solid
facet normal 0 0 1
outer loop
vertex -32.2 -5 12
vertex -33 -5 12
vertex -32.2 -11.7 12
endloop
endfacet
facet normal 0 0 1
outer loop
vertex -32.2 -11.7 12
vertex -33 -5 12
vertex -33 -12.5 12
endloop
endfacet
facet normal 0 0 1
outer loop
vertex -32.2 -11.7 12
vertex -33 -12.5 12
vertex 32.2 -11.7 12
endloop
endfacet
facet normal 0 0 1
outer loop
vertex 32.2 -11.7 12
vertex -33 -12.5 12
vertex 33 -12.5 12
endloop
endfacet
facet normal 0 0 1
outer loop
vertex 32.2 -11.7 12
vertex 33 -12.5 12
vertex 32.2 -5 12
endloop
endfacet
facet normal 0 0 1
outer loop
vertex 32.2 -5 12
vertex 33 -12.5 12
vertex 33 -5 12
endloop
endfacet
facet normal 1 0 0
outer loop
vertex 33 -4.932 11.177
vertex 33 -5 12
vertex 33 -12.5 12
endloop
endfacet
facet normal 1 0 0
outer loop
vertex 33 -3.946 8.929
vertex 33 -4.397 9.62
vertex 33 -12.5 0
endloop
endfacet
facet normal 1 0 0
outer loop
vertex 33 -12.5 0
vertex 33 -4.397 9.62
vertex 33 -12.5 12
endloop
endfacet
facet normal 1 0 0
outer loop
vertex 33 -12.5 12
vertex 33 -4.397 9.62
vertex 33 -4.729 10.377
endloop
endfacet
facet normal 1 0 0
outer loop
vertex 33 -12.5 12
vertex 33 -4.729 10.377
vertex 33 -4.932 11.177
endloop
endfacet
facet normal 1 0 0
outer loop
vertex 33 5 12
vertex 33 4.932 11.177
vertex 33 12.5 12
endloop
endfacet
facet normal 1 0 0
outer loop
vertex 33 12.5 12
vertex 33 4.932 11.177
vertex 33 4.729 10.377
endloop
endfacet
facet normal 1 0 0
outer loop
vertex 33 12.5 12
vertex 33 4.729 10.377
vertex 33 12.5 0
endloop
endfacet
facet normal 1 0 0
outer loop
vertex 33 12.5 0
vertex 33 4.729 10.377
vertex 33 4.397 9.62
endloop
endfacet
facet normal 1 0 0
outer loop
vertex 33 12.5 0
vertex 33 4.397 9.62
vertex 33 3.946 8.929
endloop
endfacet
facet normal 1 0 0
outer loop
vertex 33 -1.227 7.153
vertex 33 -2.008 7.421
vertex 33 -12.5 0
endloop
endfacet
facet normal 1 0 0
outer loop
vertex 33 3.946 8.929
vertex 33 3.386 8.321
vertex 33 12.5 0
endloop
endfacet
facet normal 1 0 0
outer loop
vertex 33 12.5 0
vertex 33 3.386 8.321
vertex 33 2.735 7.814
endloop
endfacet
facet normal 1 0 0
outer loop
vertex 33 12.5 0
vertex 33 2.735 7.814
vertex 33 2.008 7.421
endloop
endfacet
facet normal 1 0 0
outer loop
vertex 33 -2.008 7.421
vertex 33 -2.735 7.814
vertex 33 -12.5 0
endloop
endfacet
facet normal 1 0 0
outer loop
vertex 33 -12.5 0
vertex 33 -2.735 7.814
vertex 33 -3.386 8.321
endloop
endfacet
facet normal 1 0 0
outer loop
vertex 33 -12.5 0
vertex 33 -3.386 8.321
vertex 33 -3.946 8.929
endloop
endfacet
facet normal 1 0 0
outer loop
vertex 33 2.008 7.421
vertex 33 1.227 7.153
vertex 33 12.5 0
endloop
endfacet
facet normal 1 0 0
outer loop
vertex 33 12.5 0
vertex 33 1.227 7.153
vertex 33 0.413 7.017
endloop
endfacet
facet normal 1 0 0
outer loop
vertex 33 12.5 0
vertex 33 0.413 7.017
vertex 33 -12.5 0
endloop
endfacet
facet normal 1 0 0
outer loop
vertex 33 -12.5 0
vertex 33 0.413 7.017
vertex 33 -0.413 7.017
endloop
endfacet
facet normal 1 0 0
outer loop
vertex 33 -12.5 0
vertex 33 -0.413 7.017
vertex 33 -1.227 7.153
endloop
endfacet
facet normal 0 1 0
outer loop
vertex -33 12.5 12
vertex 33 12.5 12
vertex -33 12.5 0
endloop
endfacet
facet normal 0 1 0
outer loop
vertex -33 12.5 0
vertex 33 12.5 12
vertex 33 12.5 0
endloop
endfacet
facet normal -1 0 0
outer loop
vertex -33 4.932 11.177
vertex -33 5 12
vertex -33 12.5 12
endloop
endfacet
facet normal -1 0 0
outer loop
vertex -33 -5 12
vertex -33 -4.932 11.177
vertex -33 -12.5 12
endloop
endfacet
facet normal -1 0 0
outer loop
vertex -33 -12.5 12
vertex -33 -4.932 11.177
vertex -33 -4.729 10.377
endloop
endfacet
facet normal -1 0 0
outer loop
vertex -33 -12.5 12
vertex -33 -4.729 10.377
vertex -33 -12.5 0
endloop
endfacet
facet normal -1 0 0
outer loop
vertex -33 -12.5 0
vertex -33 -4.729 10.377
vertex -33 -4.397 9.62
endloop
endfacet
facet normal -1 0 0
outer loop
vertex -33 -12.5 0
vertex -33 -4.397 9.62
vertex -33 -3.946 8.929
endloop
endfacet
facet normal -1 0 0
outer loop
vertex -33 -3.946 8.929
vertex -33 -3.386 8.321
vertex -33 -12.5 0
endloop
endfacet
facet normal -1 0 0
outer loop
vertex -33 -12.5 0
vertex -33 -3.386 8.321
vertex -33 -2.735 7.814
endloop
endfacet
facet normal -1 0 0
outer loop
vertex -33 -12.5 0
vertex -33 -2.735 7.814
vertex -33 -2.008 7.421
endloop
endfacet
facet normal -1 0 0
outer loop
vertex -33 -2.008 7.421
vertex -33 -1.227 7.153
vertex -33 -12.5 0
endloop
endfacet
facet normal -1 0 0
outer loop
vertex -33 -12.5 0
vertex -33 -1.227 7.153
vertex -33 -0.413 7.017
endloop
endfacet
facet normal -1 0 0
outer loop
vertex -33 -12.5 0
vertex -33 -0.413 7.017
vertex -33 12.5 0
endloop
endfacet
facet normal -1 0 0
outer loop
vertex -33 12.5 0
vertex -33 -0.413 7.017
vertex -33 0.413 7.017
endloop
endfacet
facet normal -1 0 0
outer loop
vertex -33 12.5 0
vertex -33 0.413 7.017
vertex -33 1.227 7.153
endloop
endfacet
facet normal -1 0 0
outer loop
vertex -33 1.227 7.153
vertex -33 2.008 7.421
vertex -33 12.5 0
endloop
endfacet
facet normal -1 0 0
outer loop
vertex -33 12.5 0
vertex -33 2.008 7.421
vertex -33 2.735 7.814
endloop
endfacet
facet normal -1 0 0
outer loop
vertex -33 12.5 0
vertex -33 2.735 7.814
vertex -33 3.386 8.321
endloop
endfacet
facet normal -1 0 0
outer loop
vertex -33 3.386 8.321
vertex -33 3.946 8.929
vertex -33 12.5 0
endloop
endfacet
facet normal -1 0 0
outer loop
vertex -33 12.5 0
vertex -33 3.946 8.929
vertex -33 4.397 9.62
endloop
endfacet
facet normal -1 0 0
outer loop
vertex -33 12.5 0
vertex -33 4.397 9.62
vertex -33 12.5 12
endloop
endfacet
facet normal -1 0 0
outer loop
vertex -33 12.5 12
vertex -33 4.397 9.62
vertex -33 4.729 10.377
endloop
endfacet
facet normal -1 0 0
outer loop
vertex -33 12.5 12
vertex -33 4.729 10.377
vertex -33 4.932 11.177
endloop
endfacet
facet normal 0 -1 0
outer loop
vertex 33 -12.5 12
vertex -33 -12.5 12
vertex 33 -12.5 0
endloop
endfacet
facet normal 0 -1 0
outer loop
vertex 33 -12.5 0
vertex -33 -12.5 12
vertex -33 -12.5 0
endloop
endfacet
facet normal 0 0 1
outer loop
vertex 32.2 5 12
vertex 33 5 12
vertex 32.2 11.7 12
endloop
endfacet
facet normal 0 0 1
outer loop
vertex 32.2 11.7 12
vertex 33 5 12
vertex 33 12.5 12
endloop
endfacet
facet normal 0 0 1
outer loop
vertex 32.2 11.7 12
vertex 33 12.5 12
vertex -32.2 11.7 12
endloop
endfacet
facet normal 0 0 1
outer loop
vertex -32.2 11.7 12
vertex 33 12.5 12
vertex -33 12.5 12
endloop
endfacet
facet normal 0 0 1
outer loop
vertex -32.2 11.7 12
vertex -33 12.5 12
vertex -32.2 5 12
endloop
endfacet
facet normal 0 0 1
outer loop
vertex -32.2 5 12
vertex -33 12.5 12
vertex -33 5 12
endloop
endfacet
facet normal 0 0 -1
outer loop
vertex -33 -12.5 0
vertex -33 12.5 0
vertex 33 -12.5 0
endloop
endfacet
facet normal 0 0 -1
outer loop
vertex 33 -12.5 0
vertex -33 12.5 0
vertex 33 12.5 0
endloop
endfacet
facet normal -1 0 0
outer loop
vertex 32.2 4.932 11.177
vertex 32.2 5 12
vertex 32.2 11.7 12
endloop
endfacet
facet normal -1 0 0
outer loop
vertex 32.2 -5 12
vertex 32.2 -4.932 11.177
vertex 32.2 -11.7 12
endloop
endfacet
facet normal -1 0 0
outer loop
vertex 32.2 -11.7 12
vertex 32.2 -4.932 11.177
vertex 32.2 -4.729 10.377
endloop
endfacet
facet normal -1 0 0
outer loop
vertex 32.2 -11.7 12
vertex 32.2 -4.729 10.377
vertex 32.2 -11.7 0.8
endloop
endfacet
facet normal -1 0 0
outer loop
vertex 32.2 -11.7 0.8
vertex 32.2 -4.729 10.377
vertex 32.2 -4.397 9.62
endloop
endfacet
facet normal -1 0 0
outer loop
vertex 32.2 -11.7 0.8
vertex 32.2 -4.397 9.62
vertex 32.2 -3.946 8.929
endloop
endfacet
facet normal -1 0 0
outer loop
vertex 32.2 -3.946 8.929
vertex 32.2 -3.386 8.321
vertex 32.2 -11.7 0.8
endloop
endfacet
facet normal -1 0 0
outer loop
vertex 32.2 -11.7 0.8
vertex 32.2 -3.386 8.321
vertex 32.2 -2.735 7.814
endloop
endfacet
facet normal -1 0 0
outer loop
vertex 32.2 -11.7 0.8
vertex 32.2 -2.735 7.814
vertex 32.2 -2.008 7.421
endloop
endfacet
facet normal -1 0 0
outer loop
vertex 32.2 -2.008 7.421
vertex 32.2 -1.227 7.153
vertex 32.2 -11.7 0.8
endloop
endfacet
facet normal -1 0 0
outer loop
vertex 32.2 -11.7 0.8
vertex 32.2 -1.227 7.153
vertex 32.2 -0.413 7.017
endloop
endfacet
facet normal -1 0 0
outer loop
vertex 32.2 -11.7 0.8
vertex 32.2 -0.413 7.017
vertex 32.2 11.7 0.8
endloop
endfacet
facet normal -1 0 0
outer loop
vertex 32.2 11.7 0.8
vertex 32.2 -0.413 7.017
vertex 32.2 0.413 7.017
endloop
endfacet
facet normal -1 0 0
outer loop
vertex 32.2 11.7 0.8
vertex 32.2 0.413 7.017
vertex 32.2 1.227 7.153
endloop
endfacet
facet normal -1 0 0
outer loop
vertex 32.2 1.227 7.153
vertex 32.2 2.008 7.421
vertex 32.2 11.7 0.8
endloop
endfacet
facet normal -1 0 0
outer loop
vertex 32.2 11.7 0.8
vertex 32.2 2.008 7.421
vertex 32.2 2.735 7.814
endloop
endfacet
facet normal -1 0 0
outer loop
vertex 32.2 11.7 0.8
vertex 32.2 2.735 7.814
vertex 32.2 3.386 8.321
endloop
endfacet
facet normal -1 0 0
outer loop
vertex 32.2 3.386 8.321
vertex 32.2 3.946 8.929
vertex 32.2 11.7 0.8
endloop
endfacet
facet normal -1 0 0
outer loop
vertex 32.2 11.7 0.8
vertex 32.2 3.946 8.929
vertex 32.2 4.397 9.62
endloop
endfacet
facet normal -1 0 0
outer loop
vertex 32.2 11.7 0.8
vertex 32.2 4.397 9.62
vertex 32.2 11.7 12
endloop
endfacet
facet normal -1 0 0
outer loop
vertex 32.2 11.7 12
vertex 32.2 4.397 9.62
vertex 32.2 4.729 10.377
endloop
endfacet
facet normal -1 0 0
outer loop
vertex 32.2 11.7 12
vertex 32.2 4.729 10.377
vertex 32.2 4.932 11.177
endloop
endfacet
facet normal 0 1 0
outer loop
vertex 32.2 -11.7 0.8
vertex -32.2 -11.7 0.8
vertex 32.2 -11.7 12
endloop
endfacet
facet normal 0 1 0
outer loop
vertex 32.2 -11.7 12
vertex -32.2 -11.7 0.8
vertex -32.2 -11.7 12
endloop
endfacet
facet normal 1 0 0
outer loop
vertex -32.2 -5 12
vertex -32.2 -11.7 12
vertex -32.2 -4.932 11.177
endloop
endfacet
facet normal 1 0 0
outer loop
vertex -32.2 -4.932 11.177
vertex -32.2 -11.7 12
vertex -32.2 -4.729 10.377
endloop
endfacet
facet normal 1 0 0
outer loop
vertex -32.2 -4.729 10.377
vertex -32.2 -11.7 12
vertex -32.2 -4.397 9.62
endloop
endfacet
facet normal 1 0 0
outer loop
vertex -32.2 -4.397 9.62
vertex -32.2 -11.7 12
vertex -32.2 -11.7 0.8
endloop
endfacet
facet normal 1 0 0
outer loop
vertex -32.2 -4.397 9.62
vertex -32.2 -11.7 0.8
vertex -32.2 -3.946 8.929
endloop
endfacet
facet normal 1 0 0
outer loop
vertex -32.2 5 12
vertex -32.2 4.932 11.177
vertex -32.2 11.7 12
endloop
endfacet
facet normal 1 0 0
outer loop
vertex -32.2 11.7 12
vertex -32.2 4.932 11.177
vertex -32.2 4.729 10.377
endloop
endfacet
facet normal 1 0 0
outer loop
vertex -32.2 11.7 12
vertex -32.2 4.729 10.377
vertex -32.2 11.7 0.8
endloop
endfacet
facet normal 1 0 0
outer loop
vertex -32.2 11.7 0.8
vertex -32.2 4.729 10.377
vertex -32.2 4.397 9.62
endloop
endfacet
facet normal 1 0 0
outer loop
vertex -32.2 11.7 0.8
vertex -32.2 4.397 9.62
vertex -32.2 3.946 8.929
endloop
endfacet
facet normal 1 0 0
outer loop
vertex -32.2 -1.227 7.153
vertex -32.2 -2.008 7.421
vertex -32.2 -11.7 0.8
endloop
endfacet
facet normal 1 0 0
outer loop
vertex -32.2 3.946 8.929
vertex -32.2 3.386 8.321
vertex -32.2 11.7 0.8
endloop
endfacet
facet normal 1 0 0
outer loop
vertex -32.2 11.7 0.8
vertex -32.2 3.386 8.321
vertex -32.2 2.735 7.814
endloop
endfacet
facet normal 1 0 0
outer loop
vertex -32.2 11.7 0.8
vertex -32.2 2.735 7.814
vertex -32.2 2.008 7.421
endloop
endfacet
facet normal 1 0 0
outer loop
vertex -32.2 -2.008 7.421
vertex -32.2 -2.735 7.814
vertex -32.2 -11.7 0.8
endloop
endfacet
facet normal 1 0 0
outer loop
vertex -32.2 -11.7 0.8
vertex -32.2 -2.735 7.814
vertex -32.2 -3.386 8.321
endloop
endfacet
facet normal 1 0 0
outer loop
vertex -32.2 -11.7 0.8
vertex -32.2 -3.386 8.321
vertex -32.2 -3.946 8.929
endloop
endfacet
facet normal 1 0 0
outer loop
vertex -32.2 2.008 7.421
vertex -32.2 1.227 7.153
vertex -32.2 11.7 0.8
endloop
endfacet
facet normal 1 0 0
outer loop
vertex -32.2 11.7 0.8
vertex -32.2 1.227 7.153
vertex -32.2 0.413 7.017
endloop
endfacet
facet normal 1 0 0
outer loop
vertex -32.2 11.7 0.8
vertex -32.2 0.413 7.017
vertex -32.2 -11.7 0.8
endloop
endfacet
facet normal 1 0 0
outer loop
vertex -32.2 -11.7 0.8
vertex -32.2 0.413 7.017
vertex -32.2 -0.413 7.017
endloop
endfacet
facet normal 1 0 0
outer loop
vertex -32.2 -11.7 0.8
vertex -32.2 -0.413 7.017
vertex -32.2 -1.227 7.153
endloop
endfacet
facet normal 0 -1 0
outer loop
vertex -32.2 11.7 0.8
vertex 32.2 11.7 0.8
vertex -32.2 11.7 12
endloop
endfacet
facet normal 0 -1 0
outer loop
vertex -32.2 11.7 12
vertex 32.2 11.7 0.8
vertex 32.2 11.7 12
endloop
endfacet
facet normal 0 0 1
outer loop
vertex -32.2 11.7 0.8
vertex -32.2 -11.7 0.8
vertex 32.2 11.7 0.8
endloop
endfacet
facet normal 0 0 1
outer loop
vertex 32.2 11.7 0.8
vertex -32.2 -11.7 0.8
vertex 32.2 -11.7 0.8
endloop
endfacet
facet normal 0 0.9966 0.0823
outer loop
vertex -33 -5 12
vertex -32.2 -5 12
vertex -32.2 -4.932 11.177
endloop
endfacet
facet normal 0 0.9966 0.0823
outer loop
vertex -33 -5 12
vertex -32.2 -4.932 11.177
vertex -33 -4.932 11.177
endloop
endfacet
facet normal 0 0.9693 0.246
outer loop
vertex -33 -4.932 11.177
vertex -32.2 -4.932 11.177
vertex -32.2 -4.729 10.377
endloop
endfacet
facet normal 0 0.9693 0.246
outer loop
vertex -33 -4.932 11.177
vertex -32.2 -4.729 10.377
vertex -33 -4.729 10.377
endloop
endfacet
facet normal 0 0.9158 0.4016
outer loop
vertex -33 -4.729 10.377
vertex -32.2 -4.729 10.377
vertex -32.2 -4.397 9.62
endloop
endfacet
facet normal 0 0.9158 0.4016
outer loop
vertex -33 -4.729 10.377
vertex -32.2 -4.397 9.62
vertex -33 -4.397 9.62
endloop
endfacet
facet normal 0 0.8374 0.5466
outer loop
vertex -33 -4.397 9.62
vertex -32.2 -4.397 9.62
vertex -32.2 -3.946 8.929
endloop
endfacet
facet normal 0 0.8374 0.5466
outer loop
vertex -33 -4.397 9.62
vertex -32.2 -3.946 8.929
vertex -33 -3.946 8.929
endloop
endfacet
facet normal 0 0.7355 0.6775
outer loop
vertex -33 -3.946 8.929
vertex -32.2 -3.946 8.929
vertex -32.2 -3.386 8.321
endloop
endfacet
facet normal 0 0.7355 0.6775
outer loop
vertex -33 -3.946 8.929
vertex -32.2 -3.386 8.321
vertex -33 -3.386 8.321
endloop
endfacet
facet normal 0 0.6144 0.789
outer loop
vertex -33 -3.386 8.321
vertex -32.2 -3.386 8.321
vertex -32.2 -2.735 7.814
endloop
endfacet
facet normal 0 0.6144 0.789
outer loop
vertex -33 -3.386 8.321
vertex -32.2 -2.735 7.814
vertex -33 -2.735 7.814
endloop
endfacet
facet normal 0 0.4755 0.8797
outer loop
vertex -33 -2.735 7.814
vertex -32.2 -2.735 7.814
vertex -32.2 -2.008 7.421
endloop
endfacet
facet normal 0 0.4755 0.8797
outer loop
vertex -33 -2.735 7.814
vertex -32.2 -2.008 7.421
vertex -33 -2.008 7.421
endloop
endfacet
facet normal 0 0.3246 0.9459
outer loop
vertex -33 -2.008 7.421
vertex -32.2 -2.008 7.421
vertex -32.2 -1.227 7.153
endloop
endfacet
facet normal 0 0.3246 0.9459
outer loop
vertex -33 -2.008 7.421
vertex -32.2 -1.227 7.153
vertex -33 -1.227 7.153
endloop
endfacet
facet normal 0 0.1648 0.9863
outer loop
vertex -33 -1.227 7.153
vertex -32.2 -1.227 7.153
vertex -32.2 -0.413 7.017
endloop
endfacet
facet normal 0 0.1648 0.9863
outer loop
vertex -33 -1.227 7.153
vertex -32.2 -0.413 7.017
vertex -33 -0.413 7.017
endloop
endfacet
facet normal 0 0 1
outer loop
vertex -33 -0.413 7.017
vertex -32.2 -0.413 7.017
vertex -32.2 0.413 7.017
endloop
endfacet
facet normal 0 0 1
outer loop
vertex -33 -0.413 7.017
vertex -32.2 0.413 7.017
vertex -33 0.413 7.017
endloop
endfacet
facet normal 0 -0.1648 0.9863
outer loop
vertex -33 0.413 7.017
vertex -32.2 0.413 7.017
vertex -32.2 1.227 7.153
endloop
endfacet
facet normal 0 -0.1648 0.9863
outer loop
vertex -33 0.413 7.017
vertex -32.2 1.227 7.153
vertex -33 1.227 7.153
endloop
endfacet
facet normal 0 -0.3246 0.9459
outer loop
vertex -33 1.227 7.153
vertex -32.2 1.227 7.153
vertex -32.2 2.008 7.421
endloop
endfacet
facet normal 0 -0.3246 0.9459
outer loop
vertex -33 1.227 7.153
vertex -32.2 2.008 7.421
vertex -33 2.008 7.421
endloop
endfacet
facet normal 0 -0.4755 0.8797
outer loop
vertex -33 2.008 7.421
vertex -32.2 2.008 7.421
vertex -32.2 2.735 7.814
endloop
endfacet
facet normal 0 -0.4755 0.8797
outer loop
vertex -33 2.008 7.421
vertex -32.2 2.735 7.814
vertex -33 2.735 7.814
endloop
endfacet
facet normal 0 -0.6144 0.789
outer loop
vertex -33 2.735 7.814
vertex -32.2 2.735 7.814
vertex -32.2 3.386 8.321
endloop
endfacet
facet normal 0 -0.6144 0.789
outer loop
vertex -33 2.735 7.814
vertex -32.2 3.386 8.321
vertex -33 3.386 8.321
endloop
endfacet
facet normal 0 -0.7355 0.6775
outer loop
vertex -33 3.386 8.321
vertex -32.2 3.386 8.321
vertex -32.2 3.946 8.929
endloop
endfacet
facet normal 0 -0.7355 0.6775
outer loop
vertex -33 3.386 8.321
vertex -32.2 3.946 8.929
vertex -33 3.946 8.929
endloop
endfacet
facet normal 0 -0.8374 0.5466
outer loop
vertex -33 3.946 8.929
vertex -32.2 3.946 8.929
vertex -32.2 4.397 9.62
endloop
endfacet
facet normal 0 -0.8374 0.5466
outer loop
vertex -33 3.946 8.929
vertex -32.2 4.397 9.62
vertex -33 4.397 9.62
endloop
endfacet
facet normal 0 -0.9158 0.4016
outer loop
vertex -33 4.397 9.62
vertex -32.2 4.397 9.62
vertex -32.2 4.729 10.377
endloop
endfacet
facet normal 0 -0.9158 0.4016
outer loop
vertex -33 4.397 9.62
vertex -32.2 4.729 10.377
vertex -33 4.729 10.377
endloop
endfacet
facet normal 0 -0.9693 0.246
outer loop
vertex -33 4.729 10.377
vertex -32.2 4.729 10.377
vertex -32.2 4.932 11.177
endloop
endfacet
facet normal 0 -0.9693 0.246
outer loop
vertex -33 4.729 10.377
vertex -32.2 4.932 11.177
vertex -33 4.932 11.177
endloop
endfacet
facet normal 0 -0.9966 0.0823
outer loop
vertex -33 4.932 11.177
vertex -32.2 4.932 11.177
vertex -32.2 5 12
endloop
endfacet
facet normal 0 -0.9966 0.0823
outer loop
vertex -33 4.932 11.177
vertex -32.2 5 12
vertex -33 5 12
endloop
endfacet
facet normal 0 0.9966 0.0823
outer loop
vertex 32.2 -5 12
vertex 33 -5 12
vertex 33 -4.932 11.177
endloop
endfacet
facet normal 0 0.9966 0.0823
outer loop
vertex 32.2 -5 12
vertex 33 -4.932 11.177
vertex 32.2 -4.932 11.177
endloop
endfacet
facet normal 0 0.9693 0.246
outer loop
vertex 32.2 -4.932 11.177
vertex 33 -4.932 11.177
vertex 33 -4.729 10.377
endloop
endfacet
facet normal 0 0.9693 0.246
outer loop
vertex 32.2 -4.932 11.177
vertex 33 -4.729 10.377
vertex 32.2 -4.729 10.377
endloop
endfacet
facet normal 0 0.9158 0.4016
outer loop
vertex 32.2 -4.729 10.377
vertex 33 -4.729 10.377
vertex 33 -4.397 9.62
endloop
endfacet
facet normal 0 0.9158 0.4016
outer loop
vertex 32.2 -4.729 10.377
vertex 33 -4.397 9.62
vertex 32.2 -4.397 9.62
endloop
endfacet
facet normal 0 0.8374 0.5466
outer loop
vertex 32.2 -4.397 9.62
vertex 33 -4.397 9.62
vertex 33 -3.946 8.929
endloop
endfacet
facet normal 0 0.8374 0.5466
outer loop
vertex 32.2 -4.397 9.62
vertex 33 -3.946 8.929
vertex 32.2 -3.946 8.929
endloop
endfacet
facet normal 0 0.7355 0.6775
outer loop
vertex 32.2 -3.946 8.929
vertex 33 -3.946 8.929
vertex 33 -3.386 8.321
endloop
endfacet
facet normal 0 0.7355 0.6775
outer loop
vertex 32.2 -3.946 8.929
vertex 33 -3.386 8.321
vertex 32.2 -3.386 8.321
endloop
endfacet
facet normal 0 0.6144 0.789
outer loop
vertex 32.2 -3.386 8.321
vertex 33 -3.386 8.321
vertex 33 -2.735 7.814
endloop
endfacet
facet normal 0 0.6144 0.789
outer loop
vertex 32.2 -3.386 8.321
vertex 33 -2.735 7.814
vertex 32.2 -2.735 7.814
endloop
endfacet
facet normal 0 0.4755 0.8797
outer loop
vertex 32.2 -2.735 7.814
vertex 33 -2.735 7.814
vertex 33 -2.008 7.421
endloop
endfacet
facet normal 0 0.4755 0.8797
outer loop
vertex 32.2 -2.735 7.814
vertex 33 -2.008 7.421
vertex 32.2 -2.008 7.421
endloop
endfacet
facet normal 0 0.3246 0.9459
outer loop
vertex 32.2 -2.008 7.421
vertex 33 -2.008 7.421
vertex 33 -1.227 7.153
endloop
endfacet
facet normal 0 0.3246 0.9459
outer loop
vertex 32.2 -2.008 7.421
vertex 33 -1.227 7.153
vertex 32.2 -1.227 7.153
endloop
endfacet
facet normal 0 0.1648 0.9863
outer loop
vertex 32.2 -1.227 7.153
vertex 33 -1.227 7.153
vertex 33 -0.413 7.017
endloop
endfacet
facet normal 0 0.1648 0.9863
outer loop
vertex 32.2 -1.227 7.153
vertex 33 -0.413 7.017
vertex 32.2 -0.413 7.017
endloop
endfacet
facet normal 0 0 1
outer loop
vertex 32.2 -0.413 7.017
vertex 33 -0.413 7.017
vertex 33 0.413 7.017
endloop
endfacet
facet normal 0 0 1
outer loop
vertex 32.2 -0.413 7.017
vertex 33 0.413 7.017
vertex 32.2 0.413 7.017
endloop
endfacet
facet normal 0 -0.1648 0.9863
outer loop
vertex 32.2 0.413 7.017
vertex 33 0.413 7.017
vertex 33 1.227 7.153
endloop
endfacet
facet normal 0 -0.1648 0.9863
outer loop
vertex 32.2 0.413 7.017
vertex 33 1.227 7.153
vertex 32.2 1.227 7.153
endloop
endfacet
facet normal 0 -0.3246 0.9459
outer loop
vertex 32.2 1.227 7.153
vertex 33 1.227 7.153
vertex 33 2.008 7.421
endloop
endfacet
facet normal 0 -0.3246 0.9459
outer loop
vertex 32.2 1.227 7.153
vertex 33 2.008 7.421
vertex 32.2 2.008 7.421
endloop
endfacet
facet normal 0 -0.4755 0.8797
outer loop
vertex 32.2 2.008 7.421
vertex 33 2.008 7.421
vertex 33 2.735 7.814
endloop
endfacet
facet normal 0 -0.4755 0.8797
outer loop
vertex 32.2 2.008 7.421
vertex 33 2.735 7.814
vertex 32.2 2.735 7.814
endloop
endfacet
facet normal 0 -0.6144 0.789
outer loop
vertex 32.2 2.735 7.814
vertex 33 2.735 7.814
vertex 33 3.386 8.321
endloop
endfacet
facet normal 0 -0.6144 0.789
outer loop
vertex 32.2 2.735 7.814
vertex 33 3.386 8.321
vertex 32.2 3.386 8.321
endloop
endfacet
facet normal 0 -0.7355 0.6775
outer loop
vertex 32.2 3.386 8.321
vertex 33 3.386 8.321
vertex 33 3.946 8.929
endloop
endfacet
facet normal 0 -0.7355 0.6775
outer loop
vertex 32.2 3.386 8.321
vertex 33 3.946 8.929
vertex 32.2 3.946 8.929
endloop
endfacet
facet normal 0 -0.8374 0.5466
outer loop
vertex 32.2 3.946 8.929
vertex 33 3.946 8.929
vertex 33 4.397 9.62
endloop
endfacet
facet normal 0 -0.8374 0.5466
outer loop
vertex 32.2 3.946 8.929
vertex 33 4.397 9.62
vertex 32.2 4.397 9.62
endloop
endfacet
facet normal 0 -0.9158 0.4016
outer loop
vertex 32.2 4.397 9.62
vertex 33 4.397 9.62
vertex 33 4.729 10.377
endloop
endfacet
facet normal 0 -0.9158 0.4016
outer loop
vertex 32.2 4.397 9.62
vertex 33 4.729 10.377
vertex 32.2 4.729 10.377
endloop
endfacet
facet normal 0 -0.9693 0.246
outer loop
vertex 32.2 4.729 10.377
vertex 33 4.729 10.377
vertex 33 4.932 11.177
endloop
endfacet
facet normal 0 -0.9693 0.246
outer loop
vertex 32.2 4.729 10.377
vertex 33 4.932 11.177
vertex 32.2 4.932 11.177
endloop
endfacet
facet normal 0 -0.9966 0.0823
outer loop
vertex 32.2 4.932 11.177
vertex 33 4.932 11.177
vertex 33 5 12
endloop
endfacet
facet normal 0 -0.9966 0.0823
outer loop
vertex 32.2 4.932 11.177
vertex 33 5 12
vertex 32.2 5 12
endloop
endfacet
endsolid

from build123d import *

# Parameters (mm, degrees)
SKETCH2_W           = 66
SKETCH2_H           = 25
BOSS_EXTRUDE1_DEPTH = 12
SKETCH3_W           = 64.4
SKETCH3_H           = 23.4
CUT_EXTRUDE1_DEPTH  = 11.2
SKETCH5_R           = 5
CUT_EXTRUDE2_DEPTH  = 69.23672032


with BuildPart() as part:
    # Sketch2 → Boss-Extrude1 (new body)
    with BuildSketch(Plane.XY):
        Rectangle(SKETCH2_W, SKETCH2_H)
    extrude(amount=BOSS_EXTRUDE1_DEPTH)

    # Sketch3 → Cut-Extrude1 (cut)
    with BuildSketch(Plane.XY.offset(12)):
        Rectangle(SKETCH3_W, SKETCH3_H)
    extrude(amount=-CUT_EXTRUDE1_DEPTH, mode=Mode.SUBTRACT)

    # Sketch5 → Cut-Extrude2 (cut, through all)
    with BuildSketch(Plane(origin=(33, 0, 0), x_dir=(0, 0, -1), z_dir=(1, 0, 0))):
        with Locations((-12, 0)):
            Circle(SKETCH5_R)
    extrude(amount=-CUT_EXTRUDE2_DEPTH, mode=Mode.SUBTRACT)


solid = part.part
